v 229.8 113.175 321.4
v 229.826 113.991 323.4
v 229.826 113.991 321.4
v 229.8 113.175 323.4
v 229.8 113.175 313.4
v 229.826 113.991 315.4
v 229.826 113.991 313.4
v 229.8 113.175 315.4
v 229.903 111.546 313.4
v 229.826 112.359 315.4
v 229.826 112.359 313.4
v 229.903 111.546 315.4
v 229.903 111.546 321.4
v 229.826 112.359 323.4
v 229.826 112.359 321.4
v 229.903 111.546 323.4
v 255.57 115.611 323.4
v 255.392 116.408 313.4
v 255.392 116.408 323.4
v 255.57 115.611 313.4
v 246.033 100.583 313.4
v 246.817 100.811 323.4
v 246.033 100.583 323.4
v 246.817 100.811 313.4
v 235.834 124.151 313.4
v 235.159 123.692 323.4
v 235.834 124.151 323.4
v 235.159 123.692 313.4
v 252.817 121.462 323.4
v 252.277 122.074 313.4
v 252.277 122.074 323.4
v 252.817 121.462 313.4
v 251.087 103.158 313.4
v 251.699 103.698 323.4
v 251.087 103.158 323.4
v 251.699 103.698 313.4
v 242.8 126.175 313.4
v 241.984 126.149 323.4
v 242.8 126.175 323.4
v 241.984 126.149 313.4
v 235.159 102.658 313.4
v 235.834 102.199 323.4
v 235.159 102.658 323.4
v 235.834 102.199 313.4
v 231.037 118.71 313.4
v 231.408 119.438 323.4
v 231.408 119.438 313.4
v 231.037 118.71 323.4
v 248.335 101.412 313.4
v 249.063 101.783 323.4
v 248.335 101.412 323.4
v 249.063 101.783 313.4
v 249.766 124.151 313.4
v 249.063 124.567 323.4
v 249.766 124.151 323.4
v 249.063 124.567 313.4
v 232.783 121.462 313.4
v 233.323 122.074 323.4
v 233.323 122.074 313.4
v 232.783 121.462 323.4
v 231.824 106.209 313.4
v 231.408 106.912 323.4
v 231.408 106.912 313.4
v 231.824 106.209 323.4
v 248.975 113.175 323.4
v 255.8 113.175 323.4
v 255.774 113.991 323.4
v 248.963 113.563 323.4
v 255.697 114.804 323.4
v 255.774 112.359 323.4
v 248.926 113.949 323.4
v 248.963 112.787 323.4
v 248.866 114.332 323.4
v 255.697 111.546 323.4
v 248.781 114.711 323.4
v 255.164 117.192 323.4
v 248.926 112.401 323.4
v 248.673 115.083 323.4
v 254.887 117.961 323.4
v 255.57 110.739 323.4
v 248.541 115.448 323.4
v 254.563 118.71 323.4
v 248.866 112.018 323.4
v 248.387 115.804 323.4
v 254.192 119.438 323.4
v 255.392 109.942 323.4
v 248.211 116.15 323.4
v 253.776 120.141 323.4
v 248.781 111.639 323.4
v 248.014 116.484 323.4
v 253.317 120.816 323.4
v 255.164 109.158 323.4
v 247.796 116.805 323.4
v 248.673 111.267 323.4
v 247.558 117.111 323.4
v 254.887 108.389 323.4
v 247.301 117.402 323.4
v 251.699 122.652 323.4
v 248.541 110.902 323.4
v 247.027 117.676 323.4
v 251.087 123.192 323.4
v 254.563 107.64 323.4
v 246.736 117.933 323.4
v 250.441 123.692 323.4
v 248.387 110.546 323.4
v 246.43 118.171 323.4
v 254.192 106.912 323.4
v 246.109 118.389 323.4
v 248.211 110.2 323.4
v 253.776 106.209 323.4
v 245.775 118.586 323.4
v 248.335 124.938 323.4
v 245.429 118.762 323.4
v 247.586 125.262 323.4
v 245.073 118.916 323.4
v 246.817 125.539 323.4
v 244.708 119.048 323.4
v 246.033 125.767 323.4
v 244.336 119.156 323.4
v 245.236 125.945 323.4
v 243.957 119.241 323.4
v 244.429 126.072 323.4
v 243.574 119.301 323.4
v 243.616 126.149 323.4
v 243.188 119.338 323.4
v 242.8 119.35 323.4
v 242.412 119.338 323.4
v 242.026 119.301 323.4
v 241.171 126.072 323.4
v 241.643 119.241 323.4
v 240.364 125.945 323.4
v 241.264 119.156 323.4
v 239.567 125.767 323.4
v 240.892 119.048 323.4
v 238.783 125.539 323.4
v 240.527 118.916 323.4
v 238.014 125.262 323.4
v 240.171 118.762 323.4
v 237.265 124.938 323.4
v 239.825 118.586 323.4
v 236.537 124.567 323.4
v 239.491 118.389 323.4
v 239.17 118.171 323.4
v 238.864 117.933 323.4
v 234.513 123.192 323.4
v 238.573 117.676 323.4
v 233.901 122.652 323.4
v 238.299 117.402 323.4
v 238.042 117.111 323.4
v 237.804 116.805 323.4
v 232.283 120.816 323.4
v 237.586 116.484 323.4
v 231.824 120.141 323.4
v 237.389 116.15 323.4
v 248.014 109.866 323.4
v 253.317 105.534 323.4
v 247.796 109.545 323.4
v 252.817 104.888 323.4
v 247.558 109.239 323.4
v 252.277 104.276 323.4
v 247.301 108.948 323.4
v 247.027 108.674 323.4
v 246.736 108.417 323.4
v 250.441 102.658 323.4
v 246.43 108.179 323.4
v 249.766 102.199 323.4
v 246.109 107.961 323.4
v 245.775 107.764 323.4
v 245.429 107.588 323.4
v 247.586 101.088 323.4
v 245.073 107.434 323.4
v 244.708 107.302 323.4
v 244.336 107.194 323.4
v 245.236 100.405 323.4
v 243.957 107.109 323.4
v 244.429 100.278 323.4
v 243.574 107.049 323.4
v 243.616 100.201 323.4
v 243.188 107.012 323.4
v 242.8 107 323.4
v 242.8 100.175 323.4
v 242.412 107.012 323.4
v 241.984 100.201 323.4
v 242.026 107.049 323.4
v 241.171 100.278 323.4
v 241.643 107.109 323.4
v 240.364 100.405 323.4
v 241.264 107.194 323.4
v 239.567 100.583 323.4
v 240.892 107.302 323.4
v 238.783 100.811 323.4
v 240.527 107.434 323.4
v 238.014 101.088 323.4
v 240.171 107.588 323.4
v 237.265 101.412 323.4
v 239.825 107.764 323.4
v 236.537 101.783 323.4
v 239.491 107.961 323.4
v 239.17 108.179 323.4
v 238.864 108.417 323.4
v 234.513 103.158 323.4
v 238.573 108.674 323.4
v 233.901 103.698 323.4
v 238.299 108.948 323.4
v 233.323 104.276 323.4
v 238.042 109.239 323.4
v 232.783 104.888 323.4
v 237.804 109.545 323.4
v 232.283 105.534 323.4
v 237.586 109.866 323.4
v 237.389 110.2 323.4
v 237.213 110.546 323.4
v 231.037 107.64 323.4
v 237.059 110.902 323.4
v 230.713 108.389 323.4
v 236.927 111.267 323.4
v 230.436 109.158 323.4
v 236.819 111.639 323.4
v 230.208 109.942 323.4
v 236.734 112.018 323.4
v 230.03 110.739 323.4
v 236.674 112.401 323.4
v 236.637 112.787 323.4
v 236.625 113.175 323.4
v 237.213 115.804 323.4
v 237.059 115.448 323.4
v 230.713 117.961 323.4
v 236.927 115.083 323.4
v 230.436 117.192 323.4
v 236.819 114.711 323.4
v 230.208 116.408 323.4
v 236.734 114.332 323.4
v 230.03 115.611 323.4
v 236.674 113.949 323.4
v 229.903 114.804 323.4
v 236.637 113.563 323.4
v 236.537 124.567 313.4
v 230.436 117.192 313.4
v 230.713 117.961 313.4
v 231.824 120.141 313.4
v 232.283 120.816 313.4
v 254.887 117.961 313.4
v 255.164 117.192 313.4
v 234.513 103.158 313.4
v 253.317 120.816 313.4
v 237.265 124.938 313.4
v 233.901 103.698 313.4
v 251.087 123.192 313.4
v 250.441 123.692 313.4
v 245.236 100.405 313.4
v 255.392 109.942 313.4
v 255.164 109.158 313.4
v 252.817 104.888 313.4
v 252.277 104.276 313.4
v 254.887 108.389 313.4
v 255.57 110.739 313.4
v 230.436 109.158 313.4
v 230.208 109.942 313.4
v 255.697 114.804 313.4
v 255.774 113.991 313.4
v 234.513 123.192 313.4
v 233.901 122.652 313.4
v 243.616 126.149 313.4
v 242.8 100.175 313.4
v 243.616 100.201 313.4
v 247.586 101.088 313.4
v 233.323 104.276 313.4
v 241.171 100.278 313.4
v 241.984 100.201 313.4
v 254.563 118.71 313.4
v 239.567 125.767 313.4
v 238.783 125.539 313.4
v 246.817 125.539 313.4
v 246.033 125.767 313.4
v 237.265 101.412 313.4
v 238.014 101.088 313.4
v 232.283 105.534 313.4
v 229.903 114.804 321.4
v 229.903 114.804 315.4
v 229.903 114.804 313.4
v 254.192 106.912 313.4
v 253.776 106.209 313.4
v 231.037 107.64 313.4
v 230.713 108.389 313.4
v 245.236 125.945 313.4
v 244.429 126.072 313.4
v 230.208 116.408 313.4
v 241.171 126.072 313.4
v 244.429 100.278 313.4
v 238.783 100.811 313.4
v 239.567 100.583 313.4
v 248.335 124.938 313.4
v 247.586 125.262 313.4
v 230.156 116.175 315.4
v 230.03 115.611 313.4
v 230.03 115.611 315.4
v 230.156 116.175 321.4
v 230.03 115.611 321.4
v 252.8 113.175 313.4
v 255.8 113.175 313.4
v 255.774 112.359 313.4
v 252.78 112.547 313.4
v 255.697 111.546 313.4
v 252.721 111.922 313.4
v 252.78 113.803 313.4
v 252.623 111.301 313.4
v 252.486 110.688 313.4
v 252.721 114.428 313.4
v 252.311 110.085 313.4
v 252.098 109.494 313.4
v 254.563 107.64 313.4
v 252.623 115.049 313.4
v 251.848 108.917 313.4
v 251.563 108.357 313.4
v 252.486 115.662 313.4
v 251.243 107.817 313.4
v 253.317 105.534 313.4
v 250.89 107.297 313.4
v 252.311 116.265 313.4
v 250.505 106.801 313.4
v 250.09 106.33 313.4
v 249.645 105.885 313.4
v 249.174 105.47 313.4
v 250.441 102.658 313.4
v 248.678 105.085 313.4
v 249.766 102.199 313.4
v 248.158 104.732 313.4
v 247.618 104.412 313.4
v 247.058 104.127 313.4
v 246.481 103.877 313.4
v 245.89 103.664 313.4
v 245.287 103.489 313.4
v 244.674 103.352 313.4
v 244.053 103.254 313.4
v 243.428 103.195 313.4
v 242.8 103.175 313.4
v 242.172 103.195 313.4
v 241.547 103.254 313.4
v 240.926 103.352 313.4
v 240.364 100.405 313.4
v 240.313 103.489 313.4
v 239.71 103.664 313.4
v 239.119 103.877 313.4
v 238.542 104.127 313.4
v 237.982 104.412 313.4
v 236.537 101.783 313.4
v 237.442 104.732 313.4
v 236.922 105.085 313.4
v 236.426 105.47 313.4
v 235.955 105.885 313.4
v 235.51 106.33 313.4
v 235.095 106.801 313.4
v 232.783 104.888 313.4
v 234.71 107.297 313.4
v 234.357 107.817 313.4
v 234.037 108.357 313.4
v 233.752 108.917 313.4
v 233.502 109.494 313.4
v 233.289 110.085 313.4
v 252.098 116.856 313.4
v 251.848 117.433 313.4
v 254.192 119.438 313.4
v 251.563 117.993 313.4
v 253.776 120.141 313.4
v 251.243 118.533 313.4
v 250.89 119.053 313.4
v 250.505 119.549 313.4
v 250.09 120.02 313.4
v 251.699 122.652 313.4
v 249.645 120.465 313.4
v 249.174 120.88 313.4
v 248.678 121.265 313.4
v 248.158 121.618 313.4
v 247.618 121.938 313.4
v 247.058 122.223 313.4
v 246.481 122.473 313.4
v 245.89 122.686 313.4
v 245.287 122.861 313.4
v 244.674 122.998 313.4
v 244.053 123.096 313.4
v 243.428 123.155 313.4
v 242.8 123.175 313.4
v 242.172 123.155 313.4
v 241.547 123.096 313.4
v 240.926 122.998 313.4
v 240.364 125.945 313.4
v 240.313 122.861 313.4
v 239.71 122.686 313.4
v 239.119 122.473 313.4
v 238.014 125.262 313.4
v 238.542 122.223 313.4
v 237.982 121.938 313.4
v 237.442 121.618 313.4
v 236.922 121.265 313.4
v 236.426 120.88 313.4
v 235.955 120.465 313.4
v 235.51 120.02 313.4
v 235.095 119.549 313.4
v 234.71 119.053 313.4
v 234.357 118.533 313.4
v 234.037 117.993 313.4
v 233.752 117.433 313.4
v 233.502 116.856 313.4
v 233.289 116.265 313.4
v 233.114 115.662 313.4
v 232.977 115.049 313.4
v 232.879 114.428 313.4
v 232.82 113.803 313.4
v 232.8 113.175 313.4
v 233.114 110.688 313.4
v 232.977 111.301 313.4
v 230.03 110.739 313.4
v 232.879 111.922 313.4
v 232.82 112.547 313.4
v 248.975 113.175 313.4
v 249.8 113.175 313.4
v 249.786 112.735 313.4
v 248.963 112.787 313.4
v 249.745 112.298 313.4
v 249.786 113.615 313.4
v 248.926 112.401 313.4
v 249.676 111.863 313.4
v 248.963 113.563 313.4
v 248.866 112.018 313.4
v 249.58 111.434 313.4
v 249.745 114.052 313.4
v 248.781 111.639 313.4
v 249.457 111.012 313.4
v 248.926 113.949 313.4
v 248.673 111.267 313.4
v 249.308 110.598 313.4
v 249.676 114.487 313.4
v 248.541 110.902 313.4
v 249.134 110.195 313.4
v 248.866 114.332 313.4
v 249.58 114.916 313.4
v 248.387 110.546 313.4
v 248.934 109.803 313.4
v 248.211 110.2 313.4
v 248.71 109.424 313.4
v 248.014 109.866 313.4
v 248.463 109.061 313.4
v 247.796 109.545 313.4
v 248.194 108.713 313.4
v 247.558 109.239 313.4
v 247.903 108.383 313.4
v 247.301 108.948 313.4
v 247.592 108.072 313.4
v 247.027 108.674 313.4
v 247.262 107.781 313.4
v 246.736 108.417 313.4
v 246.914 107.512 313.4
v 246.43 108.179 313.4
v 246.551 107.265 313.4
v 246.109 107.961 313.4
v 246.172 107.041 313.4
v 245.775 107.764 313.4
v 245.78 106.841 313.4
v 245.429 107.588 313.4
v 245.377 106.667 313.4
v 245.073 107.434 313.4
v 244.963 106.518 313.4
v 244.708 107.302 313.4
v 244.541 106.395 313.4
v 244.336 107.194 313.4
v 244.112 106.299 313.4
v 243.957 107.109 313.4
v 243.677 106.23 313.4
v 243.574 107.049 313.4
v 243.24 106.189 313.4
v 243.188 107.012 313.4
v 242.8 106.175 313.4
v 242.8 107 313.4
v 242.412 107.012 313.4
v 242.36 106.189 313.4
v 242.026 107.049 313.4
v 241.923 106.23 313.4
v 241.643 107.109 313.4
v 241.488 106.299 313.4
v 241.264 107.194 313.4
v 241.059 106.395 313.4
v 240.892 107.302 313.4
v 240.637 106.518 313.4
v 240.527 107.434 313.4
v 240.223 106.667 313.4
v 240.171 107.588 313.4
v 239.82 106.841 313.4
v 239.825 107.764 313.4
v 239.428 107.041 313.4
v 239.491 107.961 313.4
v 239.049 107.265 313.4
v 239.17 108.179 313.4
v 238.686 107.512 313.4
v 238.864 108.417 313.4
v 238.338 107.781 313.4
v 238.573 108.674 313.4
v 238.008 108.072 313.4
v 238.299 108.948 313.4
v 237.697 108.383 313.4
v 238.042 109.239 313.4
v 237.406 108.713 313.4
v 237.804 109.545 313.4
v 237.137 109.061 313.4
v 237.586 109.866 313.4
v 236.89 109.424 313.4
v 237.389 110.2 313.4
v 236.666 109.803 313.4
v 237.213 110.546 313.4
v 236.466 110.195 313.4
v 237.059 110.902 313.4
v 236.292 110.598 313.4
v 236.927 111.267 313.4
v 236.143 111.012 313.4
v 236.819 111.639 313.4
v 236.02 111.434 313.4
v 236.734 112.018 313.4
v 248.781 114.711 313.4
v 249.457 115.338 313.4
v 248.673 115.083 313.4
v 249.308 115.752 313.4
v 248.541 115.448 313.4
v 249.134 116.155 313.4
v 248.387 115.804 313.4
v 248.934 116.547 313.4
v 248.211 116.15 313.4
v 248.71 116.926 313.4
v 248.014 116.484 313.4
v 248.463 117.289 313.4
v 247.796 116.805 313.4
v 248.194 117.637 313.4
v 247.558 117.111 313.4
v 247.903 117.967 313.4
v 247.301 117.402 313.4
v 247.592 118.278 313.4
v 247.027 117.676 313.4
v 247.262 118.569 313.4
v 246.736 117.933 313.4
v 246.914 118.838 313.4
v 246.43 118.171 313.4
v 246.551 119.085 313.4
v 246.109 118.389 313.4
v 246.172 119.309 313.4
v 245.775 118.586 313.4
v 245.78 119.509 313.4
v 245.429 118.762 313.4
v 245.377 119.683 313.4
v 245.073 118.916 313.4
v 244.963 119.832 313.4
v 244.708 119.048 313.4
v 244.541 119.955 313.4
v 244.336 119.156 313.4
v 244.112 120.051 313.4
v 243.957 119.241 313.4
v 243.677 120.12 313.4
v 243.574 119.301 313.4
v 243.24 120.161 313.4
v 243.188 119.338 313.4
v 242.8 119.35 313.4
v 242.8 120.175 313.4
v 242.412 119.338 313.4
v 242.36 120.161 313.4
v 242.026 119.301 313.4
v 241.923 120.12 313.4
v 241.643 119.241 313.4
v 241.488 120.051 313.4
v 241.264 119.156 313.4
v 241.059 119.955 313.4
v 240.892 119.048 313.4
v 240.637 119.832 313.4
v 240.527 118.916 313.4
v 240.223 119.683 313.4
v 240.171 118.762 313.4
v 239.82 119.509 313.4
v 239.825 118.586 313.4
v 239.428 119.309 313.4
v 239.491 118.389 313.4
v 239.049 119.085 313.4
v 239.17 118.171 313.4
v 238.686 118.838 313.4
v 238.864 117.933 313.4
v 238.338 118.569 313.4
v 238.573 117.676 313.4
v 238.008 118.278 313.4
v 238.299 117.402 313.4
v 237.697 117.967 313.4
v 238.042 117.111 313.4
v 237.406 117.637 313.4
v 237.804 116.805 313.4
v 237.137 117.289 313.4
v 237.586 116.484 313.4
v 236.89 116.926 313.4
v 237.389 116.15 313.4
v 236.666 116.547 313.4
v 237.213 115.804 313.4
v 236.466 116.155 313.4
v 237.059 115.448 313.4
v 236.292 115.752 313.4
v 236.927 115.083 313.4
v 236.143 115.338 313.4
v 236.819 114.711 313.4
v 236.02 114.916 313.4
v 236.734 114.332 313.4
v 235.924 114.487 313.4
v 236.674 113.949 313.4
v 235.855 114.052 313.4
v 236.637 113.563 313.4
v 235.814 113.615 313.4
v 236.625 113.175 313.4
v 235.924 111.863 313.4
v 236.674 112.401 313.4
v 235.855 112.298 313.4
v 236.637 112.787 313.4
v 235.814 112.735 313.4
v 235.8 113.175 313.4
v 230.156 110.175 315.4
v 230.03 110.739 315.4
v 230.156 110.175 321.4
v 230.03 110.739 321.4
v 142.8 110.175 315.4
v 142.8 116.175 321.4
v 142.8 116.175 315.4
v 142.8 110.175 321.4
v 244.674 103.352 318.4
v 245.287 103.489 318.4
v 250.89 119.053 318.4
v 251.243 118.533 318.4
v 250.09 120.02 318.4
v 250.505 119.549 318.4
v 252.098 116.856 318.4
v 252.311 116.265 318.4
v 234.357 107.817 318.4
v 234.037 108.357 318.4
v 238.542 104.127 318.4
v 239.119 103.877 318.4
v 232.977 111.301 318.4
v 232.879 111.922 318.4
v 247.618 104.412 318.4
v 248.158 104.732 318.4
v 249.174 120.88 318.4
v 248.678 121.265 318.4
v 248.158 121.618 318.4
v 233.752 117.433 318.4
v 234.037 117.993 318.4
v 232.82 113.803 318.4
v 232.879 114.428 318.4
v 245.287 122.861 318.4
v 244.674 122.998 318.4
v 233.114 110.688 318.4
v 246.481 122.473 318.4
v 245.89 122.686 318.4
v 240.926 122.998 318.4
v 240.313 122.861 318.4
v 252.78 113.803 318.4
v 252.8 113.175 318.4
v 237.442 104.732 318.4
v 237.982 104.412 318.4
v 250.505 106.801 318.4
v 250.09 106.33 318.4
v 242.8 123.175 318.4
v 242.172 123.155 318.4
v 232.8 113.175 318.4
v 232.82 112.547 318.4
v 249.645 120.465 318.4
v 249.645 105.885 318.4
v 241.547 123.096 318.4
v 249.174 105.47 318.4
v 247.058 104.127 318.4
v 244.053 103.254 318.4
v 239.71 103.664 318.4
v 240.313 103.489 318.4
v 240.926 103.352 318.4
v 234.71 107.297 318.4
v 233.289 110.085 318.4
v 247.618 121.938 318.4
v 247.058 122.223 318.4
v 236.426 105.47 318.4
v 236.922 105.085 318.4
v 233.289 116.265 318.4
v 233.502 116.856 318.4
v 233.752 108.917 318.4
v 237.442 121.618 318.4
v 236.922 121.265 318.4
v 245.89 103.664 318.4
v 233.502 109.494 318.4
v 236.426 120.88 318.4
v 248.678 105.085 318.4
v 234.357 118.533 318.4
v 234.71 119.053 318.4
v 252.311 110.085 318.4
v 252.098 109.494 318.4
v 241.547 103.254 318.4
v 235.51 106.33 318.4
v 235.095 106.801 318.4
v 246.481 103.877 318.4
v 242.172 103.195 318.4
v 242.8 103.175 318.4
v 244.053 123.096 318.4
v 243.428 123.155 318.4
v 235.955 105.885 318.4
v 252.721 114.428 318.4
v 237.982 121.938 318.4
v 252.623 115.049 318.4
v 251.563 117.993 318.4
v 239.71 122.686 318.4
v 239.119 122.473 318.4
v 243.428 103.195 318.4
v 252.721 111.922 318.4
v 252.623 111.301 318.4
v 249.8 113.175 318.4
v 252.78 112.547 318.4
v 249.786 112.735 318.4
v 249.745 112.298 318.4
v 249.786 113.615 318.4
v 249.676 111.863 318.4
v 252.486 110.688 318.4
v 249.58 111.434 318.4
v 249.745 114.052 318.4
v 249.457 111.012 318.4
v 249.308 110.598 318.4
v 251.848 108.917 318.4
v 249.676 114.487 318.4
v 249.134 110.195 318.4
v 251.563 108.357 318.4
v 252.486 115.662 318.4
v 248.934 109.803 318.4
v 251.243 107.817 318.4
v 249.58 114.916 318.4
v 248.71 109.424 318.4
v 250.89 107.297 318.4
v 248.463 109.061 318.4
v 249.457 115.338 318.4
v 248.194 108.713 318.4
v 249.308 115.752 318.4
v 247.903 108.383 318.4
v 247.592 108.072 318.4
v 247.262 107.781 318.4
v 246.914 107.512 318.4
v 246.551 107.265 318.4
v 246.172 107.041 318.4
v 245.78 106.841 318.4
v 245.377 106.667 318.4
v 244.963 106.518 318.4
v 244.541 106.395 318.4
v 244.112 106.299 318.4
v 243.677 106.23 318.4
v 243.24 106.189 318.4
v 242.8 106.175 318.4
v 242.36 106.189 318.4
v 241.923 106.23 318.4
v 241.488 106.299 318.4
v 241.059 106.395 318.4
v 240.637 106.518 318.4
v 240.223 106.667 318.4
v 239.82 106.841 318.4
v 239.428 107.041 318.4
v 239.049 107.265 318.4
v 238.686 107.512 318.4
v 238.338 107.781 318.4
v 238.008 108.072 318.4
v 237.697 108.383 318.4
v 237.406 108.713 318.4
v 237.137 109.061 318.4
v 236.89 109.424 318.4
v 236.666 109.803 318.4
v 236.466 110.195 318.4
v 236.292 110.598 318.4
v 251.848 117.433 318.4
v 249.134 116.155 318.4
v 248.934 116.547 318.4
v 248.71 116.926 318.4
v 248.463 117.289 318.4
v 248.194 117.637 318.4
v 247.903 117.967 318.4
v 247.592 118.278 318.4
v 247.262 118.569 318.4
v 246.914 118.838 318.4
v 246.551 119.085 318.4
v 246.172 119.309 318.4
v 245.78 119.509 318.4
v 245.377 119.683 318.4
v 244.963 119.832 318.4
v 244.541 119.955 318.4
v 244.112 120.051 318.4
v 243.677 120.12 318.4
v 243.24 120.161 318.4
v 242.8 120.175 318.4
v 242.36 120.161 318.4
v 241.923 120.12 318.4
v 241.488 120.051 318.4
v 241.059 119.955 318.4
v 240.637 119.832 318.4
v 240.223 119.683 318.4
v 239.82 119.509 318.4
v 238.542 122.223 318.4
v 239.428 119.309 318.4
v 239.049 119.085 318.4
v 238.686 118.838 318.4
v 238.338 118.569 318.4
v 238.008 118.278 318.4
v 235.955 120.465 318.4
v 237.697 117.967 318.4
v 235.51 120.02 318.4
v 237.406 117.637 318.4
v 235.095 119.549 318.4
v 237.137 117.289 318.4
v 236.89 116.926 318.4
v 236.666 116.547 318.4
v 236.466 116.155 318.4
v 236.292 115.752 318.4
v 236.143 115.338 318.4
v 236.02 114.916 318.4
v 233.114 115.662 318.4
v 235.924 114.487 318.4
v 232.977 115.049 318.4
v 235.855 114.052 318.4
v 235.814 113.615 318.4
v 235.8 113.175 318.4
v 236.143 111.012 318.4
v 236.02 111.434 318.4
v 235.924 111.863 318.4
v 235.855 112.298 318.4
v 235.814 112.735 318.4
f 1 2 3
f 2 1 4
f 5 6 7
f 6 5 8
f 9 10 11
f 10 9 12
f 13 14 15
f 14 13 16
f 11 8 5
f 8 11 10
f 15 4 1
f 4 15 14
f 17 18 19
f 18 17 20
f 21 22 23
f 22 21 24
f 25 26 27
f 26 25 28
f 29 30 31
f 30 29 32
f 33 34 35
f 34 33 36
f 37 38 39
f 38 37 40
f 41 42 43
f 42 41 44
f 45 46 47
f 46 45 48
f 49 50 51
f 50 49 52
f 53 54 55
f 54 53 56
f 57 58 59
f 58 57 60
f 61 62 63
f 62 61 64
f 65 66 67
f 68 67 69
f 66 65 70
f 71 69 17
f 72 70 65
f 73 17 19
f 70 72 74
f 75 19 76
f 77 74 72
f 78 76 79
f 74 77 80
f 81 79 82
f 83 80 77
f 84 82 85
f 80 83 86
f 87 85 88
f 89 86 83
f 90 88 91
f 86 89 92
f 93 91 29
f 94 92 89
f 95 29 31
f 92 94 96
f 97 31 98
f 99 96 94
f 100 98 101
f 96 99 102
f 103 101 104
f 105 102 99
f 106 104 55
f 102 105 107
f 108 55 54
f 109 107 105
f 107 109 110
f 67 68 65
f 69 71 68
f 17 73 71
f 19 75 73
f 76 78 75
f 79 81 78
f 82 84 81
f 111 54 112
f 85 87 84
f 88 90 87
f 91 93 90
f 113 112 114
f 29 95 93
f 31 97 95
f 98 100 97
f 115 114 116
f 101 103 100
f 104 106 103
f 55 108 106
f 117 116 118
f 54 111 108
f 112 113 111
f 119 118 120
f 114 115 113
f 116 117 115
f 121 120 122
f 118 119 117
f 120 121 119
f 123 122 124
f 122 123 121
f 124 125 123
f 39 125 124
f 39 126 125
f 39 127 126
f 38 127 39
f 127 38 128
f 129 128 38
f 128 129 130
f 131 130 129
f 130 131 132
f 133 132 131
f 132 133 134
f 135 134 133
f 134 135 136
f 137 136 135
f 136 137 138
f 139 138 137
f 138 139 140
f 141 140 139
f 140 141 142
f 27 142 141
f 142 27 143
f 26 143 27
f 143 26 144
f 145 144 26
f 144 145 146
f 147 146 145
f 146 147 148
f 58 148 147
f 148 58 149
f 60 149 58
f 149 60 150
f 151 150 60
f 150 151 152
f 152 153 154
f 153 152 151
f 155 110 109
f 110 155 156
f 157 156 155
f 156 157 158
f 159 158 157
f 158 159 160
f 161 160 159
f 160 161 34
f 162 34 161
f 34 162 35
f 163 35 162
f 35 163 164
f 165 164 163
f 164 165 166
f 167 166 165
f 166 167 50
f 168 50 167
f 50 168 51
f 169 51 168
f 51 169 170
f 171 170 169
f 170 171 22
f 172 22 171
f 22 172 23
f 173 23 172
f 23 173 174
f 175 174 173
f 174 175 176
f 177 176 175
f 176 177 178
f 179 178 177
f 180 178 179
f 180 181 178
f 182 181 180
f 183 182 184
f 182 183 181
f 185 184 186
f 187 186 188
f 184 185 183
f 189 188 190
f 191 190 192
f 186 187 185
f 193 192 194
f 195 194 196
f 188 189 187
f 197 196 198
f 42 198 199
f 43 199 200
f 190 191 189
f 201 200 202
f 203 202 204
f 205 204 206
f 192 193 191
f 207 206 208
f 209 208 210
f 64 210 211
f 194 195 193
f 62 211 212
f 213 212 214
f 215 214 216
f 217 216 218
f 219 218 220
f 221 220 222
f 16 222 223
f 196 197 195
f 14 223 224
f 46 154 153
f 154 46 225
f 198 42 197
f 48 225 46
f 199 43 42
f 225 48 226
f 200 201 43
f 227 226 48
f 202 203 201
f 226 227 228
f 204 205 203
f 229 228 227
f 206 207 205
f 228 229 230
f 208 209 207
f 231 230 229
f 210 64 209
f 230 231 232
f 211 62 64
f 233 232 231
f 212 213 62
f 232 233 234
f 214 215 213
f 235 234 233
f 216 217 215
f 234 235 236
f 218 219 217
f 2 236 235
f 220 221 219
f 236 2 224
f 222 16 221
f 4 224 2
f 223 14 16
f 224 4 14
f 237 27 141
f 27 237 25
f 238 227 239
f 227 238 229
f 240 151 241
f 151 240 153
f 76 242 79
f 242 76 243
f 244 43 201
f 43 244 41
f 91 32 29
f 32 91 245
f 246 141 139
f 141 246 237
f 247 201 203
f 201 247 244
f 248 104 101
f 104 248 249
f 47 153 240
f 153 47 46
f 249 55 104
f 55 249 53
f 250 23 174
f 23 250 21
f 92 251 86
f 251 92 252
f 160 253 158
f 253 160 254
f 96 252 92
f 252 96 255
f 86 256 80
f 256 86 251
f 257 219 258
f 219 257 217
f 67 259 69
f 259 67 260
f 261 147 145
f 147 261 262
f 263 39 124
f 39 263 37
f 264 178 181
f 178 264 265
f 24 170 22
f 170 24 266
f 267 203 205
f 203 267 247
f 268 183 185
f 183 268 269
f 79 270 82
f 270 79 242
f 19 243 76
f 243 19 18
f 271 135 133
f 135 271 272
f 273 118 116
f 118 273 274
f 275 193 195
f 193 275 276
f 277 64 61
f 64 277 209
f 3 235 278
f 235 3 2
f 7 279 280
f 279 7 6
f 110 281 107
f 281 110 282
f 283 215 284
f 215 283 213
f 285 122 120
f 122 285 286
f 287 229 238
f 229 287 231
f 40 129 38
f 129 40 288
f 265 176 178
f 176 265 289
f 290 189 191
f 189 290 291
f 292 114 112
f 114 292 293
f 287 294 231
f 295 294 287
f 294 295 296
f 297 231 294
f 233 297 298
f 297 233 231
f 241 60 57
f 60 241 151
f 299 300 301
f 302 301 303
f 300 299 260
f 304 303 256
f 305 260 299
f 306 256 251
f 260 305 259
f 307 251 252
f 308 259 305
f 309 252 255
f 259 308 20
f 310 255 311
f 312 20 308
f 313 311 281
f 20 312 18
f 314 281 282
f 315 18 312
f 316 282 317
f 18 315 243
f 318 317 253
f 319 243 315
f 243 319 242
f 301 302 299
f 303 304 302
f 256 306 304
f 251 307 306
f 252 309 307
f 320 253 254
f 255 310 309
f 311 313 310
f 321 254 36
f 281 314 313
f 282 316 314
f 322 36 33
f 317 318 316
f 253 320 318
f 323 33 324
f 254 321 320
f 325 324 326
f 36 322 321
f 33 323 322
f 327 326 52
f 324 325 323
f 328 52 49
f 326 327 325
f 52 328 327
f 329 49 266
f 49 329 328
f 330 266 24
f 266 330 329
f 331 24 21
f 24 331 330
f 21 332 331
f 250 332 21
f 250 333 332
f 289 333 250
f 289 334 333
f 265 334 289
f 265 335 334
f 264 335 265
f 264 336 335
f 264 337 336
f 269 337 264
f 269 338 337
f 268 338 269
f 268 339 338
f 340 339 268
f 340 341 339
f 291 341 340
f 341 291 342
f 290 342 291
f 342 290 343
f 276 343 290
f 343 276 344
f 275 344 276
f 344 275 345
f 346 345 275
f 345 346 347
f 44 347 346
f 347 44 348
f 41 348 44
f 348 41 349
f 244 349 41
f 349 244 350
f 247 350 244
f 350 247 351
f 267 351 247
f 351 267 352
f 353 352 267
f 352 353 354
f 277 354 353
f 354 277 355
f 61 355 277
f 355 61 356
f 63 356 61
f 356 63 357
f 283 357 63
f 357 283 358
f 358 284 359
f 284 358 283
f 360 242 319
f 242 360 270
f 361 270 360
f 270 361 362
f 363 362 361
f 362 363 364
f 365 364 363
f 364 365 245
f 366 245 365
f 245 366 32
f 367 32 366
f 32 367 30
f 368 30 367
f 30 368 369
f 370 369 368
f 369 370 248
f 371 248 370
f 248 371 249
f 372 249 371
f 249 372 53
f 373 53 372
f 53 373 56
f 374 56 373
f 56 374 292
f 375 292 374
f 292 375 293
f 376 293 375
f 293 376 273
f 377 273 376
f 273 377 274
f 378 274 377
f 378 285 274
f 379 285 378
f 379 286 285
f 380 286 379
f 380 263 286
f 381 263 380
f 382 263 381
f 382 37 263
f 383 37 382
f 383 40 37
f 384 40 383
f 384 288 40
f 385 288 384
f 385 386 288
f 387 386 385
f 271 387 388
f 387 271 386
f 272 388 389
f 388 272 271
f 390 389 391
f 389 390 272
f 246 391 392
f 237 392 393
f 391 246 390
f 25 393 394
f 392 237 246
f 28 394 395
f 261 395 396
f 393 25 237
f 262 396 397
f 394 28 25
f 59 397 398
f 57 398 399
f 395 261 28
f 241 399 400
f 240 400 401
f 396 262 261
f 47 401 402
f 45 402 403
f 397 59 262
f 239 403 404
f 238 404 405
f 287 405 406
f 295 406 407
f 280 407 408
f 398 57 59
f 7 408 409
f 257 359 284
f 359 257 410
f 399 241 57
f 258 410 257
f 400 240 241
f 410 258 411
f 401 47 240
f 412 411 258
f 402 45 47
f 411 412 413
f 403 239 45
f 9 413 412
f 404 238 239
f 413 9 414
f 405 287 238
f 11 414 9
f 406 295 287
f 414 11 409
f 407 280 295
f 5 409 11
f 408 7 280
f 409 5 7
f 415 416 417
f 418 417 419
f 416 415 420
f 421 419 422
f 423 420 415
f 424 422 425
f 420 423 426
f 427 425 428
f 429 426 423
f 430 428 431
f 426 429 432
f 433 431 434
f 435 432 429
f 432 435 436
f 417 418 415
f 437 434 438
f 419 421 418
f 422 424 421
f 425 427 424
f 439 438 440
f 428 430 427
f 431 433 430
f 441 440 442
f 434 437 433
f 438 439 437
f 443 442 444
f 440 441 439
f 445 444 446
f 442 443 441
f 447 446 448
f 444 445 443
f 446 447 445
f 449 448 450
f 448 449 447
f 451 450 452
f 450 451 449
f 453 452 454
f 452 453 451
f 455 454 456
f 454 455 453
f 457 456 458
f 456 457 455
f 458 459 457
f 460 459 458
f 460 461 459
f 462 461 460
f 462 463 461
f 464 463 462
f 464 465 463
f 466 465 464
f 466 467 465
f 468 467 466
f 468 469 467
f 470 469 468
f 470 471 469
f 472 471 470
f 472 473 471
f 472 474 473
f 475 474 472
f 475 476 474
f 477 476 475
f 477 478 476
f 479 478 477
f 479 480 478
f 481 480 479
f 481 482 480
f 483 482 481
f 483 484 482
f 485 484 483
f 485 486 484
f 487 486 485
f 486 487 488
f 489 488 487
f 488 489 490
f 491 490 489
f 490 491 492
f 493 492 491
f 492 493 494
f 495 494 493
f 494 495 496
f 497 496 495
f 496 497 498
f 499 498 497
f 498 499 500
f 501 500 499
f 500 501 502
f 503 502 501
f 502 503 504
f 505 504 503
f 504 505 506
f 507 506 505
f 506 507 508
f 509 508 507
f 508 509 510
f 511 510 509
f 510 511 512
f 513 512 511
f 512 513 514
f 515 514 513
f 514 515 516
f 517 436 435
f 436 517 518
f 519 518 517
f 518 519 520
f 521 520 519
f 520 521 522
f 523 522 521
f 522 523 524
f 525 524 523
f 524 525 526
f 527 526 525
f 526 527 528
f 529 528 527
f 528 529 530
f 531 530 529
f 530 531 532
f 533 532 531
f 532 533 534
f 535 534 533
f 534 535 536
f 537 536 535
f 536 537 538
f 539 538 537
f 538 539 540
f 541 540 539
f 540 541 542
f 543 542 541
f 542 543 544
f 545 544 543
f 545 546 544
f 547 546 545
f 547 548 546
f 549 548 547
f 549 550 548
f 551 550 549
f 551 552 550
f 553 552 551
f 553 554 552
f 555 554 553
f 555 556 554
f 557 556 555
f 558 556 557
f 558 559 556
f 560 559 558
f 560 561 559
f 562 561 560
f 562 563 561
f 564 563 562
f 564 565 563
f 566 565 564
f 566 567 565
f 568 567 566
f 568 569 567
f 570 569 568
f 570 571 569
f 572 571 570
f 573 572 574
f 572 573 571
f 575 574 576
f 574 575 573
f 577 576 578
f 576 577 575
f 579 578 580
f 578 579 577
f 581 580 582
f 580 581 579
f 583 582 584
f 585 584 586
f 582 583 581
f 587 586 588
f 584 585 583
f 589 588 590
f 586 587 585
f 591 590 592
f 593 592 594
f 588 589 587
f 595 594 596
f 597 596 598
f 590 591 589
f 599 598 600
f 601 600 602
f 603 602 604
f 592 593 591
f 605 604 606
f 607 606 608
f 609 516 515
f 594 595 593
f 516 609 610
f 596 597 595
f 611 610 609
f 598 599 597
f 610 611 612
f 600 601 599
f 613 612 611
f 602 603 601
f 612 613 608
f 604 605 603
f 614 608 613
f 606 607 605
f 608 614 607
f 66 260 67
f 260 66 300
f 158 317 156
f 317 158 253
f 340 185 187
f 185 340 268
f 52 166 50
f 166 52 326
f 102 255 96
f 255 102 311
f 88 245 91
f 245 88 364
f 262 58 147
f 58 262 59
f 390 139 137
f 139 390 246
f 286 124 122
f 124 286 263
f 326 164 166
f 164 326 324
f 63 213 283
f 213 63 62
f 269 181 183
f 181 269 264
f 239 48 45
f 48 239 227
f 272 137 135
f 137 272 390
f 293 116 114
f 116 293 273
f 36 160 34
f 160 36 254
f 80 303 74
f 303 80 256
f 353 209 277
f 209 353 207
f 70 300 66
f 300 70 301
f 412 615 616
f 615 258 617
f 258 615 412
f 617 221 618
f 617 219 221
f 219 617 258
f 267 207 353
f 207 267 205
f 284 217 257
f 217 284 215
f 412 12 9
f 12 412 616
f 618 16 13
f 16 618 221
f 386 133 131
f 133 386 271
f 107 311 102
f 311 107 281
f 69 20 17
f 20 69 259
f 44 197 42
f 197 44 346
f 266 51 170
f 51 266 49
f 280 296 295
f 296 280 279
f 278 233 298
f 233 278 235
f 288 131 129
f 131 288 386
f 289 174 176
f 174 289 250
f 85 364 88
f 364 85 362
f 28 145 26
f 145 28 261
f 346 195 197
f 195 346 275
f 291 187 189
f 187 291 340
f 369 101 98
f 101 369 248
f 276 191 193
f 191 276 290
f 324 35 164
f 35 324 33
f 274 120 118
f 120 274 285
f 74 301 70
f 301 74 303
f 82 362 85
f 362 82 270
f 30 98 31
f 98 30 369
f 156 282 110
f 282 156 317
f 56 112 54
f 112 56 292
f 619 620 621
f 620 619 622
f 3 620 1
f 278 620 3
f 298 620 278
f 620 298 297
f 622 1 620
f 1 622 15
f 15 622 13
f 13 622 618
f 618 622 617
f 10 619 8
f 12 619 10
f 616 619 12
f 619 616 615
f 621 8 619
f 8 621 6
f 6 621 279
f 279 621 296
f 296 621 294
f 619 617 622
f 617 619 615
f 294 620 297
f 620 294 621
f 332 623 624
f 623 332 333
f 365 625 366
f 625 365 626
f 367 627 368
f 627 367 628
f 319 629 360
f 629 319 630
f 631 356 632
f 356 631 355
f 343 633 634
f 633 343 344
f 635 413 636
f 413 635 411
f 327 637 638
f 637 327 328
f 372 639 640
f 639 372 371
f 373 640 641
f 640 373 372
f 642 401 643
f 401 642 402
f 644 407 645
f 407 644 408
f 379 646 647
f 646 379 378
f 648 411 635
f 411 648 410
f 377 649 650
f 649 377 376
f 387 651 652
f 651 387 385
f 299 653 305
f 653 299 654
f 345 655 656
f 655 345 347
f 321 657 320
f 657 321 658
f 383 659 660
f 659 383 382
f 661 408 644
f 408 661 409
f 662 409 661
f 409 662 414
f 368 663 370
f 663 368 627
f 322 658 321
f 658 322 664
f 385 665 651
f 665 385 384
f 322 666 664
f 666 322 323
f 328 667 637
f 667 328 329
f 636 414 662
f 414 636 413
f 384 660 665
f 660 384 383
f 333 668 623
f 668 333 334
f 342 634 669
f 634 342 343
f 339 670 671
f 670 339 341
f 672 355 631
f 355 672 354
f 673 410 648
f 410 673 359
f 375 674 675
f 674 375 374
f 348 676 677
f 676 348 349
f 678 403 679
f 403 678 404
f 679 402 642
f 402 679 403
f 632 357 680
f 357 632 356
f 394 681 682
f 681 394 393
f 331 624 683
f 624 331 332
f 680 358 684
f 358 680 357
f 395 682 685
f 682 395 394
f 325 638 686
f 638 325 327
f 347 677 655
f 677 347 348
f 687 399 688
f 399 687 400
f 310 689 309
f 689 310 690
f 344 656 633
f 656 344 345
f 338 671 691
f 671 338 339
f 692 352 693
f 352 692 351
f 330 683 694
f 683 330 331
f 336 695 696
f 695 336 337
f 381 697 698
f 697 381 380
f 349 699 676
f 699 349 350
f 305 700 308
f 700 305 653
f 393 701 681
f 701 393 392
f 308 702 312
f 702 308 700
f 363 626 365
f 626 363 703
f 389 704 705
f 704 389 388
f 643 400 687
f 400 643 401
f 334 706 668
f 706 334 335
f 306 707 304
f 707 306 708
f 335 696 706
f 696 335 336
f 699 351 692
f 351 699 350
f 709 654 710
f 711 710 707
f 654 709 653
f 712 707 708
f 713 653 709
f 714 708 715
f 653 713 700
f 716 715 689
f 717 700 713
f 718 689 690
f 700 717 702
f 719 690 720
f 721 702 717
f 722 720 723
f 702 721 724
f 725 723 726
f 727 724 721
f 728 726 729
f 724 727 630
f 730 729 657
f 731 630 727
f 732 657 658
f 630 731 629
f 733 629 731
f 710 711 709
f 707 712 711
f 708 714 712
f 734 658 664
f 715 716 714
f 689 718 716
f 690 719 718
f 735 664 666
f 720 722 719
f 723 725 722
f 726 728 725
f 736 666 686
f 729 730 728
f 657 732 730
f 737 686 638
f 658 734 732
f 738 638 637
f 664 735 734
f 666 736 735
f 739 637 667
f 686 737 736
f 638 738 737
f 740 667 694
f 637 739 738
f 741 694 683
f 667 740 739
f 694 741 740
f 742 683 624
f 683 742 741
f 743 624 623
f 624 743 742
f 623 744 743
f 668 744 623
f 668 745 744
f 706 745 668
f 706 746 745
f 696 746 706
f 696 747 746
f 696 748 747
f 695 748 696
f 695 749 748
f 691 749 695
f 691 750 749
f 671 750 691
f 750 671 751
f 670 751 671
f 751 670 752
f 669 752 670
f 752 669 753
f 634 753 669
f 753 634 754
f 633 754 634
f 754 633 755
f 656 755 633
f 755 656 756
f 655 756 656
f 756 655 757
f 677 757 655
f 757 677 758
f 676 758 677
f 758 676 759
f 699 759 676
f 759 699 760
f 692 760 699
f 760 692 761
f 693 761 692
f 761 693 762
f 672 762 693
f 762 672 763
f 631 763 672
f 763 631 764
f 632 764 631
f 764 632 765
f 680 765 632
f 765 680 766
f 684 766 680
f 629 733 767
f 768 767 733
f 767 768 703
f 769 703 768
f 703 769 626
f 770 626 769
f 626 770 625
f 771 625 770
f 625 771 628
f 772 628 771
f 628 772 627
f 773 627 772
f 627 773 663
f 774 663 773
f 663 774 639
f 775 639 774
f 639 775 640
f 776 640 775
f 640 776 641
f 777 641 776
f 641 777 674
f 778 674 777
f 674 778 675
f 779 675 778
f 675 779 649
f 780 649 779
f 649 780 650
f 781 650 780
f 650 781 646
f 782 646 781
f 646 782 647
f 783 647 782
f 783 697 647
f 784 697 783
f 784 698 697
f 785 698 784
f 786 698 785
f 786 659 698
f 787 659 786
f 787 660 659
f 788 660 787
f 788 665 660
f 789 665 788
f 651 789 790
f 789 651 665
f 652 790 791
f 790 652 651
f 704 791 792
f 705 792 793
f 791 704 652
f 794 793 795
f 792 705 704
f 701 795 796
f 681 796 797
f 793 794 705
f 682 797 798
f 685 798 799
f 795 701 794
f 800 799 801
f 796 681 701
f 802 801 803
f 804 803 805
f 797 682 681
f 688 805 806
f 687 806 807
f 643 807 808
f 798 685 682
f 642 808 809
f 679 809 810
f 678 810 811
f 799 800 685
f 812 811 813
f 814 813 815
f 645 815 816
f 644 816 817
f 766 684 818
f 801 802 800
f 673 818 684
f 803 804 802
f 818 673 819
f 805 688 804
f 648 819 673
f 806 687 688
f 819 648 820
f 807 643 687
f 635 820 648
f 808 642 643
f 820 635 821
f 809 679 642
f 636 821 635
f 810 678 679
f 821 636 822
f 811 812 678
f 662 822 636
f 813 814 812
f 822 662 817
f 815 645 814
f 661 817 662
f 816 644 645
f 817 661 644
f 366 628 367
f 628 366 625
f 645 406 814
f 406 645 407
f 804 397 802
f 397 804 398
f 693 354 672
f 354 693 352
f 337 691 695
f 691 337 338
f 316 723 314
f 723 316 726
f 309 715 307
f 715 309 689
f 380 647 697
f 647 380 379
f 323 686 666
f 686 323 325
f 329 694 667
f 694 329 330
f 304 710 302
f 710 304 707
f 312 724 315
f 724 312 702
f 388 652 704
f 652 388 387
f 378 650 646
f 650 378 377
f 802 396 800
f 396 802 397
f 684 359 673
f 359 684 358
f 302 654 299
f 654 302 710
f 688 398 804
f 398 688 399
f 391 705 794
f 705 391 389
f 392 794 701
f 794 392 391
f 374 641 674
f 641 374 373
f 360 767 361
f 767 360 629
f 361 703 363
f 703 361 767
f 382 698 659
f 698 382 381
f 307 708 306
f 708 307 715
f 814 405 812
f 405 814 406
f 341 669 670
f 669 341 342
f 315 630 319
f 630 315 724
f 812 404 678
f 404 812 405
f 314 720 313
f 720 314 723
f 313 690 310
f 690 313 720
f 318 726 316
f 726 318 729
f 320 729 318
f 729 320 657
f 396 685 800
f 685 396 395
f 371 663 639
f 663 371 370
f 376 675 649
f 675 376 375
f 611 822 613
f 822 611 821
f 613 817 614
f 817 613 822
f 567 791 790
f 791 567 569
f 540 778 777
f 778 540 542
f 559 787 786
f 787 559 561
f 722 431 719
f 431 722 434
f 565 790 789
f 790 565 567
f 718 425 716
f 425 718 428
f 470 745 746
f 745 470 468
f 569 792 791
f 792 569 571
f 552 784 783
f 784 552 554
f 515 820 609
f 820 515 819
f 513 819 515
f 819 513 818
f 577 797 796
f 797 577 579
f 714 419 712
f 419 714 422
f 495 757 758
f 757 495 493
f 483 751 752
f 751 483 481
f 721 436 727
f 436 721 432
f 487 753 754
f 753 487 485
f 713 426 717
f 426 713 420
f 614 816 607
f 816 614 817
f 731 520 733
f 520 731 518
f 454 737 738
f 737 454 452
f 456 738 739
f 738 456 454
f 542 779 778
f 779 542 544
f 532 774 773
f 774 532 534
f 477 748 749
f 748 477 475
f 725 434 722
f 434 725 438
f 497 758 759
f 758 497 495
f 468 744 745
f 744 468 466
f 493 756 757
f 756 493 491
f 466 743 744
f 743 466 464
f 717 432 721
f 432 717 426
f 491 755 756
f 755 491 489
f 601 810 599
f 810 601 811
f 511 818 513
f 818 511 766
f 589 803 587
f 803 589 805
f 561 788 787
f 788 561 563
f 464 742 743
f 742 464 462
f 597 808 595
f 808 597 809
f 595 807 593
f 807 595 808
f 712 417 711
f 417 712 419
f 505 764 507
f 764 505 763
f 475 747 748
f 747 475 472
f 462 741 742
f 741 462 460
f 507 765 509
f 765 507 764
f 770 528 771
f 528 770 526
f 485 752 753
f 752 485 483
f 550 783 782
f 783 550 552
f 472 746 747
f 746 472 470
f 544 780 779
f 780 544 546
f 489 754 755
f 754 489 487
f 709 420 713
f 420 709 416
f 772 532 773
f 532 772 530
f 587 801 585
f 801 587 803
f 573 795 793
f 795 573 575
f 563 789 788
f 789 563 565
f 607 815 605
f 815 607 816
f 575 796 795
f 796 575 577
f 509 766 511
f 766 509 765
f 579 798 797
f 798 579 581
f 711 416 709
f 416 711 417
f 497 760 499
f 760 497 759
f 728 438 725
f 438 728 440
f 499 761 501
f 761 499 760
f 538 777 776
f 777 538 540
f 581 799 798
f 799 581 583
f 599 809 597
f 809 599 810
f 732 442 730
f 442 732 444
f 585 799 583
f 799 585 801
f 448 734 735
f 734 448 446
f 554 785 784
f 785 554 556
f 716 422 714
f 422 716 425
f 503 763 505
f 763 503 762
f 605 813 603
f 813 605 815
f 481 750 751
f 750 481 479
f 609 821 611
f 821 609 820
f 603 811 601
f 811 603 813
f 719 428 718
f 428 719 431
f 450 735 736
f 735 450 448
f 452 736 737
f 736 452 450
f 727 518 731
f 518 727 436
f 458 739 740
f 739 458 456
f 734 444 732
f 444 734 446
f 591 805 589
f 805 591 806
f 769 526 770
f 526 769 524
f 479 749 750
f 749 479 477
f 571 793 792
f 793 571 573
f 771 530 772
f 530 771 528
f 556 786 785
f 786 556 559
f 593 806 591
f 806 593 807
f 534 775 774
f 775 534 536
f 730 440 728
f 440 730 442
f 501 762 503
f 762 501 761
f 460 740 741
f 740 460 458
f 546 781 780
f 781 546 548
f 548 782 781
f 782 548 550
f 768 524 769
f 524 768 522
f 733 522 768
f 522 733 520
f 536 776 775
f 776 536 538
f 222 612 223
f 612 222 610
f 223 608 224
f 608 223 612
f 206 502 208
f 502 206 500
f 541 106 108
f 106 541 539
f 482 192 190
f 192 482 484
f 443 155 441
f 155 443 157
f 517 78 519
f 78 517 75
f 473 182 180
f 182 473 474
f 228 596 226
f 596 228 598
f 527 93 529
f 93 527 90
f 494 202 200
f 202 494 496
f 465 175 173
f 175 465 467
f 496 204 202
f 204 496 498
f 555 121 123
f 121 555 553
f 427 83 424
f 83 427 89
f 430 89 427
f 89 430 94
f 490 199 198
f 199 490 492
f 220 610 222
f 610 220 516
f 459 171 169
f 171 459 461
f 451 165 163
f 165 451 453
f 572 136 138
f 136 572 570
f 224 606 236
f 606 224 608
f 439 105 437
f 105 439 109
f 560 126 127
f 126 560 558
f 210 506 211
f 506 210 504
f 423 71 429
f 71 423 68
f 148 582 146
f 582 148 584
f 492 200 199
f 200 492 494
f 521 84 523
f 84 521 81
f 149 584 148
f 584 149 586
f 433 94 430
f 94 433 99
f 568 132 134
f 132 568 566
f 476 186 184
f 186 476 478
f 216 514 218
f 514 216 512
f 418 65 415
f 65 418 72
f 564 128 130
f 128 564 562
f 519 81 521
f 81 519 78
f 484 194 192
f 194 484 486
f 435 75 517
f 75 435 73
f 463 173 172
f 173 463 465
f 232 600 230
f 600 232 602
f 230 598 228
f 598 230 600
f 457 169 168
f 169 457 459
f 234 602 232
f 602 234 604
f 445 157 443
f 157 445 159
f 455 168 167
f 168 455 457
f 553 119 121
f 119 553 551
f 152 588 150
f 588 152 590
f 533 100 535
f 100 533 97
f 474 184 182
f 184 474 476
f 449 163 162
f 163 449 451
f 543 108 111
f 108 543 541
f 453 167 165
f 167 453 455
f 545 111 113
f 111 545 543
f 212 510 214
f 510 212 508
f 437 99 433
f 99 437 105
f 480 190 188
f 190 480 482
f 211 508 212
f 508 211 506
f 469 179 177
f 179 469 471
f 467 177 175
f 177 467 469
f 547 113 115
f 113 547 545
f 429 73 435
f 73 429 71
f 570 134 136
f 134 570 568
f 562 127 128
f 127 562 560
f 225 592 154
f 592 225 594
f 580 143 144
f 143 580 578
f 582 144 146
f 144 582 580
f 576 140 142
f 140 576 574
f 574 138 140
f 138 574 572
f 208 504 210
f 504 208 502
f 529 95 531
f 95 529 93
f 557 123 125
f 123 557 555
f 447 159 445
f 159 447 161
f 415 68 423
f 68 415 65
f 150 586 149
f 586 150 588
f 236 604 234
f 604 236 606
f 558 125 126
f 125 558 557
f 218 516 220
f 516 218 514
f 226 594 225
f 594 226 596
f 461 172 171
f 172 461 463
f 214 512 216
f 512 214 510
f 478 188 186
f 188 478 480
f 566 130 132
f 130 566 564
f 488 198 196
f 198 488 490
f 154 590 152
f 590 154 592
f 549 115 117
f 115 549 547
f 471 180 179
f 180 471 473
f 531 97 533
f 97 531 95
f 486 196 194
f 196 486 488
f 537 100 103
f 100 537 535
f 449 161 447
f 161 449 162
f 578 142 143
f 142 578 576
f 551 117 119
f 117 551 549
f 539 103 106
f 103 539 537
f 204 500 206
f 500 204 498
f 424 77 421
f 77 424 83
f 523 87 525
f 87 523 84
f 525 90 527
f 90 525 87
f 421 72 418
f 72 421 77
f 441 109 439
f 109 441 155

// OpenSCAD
// file: funcBastaoRetratil.scad
// ----- ----- ----- Declaração de Variáveis ----- ----- ----- //

res=10;
folga1=0.125;
folga2=0.175;
eFMO=25.2; //entreFurosMesaOptica
rFuro=6/2;

folginhacobre=1;
nxfuroscobre=4;
nyfuroscobre=3;

cux=(nxfuroscobre-1)*eFMO+2*rFuro+2*folga1;
cuy=(nyfuroscobre-1)*eFMO+2*rFuro+2*folga1;
cuz=28.4;
zcu=10;

cux_compare=1;
cuy_compare=1;
cuz_compare=1;

Ly=70;
//Lx=20;
Lx=cux+2*folginhacobre;
pex=20;
//pex=cux+2*folginhacobre;

rCil=20/2;
altCil=170;
tyCil=rCil+5; //'t' vem de translação, e 'y' vem de estar no eixo y
txCil=30; //'t' vem de translação, e 'y' vem de estar no eixo y

rCone=25;
altCone=rCone+20;

abertura=60; //é um ângulo dado em graus
maoAmais=2.5;
altmao=10;
altmao2=10;
altmao3=35;

cubebracox=55;
cubebracoy=rCil;
cubebracoz=altmao;
aux_scale=0.6;

rKint=rCil-1;
rKext=rCil;
altK=altmao2/2;

rpivot=2.5;
altpivot=altmao2;

rCint1=1;
rCint2=1;
rCext1=1;
rCext2=1;
altC=altmao2/2; // 'C' é de Canhão
entreDistCanhao=10;

altpeq=3;

// ----- ----- ----- Declaração de Variáveis ----- ----- ----- //

//use <threads-library-by-cuiso-daniel-v7.scad>
use <threads-library-by-cuiso-v1.scad>

// ----- ----- ----- MAIN ----- ----- ----- //
module funcBastaoRetratil(peca=2,alt,r=20/2,esp=3,res=100,folga=0.125){
    if(peca==3){
        // Peça Maior
        difference(){
            cylinder(alt,r-folga,r-folga,$fn=res);
            #cylinder(alt,r-esp+folga,r-esp+folga,$fn=res);
            #translate([0,0,alt-5])
            #rotate([90,0,0])
            #cylinder(2*alt,5/2,5/2,$fn=res);
        }
        
        //Peça menor
        translate([0,0,alt-10])
        difference(){
            cylinder(alt,r-esp,r-esp,$fn=res);
            #cylinder(alt,r-2*esp,r-2*esp,$fn=res);
        }
        translate([0,0,2*alt-10])cylinder(altpeq,r-esp,r-esp,$fn=res);
        translate([0,0,2*alt-10+altpeq])
        difference(){
            cylinder(d=10, h=7, $fn = res); 
            #thread_for_nut(diameter=6, length=7, usrclearance=0.1); 
        }
        
        //Parafuso
        translate([r*1.25+9+4.5,0,0]){
            thread_for_screw(diameter=6, length=10); 
            cylinder(d=9+4.5, h=3, $fn=6);
        }
    }else if(peca==0){
        // Peça Maior
        difference(){
            cylinder(alt,r-folga,r-folga,$fn=res);
            #cylinder(alt,r-esp+folga,r-esp+folga,$fn=res);
            #translate([0,0,alt-5])
            #rotate([90,0,0])
            #cylinder(2*alt,5/2,5/2,$fn=res);
        }
    }else if(peca==1){
        //Peça menor
        translate([0,0,alt-10])
        difference(){
            cylinder(alt,r-esp,r-esp,$fn=res);
            #cylinder(alt,r-2*esp,r-2*esp,$fn=res);
        }
        translate([0,0,2*alt-10])cylinder(altpeq,r-esp,r-esp,$fn=res);
        translate([0,0,2*alt-10+altpeq])
        difference(){
            cylinder(d=10, h=7, $fn = res); 
            #thread_for_nut(diameter=6, length=7, usrclearance=0.1); 
        }
    }else if(peca==2){
        //Parafuso
        translate([r*1.25+9+4.5,0,0]){
            thread_for_screw(diameter=6, length=10); 
            cylinder(d=9+4.5, h=3, $fn=6);
        }
    }
    echo("Altura máxima do chão até a parte de baixo do braço (Nota: Não se considera a altura que entra por baixo na peça de cima):");
    echo(2*alt-10+altpeq+7+5+3);
}

funcBastaoRetratil(peca=2,alt=200);
// main file
// ----- ----- ----- Declaração de Variáveis ----- ----- ----- //

res=100;
folga1=0.125;
folga2=0.175;
eFMO=25.2; //entreFurosMesaOptica
rFuro=6/2;

folginhacobre=1;
nxfuroscobre=4;
nyfuroscobre=3;

cux=(nxfuroscobre-1)*eFMO+2*rFuro+2*folga1;
cuy=(nyfuroscobre-1)*eFMO+2*rFuro+2*folga1;
cuz=28.4;
zcu=10;

cux_compare=1;
cuy_compare=1;
cuz_compare=1;

Ly=70;
//Lx=20;
Lx=cux+2*folginhacobre;
pex=20;
//pex=cux+2*folginhacobre;

rCil=20/2;
altCil=270;
tyCil=rCil+5; //'t' vem de translação, e 'y' vem de estar no eixo y
txCil=30; //'t' vem de translação, e 'y' vem de estar no eixo y

rCone=25;
altCone=rCone+20;

abertura=60; //é um ângulo dado em graus
maoAmais=3;
altmao=10;
altmao2=10;
altmao3=27.5;

cubebracox=200/2;
cubebracoy=rCil;
cubebracoz=altmao;
aux_scale=0.6;

esp=3;
rKint=rCil-esp;
rKext=rCil;
altK=altmao2/2;

rpivot=6;
altpivot=altmao2;

rCint1=1;
rCint2=1;
rCext1=1;
rCext2=1;
altC=altmao2/2; // 'C' é de Canhão
entreDistCanhao=10;

// ----- ----- ----- Declaração de Funções ----- ----- ----- //
use <funcoes_GFCx.scad>
use <funcBastaoRetratil.scad>

// ----- ----- ----- MAIN ----- ----- ----- //

translate([0,1.5*(cuy+2*folginhacobre),0]){
    // Giro
    translate([2*cubebracox+5,0,0])
    translate([eFMO*(1.5),eFMO,cuz+zcu+altCil+5])
    rotate([0,0,180])
    difference(){
        translate([0,0,0]){
            cylinder(altmao2,rCil+maoAmais,rCil+maoAmais,$fn=res);
            translate([0,cubebracoy/2-cubebracoy*(aux_scale/2),cubebracoz/2-cubebracoz*(aux_scale/2)])
            translate([0,-cubebracoy/2,0])
            cube([cubebracox,cubebracoy*aux_scale,cubebracoz*aux_scale]);
        }
        #difference(){
            #cylinder(altK,rKext,rKext,$fn=res);
            #cylinder(altK,rKint,rKint,$fn=res);
        }
        #cylinder(altmao2,rpivot+folga2,rpivot+folga2,$fn=res);
    }
}
